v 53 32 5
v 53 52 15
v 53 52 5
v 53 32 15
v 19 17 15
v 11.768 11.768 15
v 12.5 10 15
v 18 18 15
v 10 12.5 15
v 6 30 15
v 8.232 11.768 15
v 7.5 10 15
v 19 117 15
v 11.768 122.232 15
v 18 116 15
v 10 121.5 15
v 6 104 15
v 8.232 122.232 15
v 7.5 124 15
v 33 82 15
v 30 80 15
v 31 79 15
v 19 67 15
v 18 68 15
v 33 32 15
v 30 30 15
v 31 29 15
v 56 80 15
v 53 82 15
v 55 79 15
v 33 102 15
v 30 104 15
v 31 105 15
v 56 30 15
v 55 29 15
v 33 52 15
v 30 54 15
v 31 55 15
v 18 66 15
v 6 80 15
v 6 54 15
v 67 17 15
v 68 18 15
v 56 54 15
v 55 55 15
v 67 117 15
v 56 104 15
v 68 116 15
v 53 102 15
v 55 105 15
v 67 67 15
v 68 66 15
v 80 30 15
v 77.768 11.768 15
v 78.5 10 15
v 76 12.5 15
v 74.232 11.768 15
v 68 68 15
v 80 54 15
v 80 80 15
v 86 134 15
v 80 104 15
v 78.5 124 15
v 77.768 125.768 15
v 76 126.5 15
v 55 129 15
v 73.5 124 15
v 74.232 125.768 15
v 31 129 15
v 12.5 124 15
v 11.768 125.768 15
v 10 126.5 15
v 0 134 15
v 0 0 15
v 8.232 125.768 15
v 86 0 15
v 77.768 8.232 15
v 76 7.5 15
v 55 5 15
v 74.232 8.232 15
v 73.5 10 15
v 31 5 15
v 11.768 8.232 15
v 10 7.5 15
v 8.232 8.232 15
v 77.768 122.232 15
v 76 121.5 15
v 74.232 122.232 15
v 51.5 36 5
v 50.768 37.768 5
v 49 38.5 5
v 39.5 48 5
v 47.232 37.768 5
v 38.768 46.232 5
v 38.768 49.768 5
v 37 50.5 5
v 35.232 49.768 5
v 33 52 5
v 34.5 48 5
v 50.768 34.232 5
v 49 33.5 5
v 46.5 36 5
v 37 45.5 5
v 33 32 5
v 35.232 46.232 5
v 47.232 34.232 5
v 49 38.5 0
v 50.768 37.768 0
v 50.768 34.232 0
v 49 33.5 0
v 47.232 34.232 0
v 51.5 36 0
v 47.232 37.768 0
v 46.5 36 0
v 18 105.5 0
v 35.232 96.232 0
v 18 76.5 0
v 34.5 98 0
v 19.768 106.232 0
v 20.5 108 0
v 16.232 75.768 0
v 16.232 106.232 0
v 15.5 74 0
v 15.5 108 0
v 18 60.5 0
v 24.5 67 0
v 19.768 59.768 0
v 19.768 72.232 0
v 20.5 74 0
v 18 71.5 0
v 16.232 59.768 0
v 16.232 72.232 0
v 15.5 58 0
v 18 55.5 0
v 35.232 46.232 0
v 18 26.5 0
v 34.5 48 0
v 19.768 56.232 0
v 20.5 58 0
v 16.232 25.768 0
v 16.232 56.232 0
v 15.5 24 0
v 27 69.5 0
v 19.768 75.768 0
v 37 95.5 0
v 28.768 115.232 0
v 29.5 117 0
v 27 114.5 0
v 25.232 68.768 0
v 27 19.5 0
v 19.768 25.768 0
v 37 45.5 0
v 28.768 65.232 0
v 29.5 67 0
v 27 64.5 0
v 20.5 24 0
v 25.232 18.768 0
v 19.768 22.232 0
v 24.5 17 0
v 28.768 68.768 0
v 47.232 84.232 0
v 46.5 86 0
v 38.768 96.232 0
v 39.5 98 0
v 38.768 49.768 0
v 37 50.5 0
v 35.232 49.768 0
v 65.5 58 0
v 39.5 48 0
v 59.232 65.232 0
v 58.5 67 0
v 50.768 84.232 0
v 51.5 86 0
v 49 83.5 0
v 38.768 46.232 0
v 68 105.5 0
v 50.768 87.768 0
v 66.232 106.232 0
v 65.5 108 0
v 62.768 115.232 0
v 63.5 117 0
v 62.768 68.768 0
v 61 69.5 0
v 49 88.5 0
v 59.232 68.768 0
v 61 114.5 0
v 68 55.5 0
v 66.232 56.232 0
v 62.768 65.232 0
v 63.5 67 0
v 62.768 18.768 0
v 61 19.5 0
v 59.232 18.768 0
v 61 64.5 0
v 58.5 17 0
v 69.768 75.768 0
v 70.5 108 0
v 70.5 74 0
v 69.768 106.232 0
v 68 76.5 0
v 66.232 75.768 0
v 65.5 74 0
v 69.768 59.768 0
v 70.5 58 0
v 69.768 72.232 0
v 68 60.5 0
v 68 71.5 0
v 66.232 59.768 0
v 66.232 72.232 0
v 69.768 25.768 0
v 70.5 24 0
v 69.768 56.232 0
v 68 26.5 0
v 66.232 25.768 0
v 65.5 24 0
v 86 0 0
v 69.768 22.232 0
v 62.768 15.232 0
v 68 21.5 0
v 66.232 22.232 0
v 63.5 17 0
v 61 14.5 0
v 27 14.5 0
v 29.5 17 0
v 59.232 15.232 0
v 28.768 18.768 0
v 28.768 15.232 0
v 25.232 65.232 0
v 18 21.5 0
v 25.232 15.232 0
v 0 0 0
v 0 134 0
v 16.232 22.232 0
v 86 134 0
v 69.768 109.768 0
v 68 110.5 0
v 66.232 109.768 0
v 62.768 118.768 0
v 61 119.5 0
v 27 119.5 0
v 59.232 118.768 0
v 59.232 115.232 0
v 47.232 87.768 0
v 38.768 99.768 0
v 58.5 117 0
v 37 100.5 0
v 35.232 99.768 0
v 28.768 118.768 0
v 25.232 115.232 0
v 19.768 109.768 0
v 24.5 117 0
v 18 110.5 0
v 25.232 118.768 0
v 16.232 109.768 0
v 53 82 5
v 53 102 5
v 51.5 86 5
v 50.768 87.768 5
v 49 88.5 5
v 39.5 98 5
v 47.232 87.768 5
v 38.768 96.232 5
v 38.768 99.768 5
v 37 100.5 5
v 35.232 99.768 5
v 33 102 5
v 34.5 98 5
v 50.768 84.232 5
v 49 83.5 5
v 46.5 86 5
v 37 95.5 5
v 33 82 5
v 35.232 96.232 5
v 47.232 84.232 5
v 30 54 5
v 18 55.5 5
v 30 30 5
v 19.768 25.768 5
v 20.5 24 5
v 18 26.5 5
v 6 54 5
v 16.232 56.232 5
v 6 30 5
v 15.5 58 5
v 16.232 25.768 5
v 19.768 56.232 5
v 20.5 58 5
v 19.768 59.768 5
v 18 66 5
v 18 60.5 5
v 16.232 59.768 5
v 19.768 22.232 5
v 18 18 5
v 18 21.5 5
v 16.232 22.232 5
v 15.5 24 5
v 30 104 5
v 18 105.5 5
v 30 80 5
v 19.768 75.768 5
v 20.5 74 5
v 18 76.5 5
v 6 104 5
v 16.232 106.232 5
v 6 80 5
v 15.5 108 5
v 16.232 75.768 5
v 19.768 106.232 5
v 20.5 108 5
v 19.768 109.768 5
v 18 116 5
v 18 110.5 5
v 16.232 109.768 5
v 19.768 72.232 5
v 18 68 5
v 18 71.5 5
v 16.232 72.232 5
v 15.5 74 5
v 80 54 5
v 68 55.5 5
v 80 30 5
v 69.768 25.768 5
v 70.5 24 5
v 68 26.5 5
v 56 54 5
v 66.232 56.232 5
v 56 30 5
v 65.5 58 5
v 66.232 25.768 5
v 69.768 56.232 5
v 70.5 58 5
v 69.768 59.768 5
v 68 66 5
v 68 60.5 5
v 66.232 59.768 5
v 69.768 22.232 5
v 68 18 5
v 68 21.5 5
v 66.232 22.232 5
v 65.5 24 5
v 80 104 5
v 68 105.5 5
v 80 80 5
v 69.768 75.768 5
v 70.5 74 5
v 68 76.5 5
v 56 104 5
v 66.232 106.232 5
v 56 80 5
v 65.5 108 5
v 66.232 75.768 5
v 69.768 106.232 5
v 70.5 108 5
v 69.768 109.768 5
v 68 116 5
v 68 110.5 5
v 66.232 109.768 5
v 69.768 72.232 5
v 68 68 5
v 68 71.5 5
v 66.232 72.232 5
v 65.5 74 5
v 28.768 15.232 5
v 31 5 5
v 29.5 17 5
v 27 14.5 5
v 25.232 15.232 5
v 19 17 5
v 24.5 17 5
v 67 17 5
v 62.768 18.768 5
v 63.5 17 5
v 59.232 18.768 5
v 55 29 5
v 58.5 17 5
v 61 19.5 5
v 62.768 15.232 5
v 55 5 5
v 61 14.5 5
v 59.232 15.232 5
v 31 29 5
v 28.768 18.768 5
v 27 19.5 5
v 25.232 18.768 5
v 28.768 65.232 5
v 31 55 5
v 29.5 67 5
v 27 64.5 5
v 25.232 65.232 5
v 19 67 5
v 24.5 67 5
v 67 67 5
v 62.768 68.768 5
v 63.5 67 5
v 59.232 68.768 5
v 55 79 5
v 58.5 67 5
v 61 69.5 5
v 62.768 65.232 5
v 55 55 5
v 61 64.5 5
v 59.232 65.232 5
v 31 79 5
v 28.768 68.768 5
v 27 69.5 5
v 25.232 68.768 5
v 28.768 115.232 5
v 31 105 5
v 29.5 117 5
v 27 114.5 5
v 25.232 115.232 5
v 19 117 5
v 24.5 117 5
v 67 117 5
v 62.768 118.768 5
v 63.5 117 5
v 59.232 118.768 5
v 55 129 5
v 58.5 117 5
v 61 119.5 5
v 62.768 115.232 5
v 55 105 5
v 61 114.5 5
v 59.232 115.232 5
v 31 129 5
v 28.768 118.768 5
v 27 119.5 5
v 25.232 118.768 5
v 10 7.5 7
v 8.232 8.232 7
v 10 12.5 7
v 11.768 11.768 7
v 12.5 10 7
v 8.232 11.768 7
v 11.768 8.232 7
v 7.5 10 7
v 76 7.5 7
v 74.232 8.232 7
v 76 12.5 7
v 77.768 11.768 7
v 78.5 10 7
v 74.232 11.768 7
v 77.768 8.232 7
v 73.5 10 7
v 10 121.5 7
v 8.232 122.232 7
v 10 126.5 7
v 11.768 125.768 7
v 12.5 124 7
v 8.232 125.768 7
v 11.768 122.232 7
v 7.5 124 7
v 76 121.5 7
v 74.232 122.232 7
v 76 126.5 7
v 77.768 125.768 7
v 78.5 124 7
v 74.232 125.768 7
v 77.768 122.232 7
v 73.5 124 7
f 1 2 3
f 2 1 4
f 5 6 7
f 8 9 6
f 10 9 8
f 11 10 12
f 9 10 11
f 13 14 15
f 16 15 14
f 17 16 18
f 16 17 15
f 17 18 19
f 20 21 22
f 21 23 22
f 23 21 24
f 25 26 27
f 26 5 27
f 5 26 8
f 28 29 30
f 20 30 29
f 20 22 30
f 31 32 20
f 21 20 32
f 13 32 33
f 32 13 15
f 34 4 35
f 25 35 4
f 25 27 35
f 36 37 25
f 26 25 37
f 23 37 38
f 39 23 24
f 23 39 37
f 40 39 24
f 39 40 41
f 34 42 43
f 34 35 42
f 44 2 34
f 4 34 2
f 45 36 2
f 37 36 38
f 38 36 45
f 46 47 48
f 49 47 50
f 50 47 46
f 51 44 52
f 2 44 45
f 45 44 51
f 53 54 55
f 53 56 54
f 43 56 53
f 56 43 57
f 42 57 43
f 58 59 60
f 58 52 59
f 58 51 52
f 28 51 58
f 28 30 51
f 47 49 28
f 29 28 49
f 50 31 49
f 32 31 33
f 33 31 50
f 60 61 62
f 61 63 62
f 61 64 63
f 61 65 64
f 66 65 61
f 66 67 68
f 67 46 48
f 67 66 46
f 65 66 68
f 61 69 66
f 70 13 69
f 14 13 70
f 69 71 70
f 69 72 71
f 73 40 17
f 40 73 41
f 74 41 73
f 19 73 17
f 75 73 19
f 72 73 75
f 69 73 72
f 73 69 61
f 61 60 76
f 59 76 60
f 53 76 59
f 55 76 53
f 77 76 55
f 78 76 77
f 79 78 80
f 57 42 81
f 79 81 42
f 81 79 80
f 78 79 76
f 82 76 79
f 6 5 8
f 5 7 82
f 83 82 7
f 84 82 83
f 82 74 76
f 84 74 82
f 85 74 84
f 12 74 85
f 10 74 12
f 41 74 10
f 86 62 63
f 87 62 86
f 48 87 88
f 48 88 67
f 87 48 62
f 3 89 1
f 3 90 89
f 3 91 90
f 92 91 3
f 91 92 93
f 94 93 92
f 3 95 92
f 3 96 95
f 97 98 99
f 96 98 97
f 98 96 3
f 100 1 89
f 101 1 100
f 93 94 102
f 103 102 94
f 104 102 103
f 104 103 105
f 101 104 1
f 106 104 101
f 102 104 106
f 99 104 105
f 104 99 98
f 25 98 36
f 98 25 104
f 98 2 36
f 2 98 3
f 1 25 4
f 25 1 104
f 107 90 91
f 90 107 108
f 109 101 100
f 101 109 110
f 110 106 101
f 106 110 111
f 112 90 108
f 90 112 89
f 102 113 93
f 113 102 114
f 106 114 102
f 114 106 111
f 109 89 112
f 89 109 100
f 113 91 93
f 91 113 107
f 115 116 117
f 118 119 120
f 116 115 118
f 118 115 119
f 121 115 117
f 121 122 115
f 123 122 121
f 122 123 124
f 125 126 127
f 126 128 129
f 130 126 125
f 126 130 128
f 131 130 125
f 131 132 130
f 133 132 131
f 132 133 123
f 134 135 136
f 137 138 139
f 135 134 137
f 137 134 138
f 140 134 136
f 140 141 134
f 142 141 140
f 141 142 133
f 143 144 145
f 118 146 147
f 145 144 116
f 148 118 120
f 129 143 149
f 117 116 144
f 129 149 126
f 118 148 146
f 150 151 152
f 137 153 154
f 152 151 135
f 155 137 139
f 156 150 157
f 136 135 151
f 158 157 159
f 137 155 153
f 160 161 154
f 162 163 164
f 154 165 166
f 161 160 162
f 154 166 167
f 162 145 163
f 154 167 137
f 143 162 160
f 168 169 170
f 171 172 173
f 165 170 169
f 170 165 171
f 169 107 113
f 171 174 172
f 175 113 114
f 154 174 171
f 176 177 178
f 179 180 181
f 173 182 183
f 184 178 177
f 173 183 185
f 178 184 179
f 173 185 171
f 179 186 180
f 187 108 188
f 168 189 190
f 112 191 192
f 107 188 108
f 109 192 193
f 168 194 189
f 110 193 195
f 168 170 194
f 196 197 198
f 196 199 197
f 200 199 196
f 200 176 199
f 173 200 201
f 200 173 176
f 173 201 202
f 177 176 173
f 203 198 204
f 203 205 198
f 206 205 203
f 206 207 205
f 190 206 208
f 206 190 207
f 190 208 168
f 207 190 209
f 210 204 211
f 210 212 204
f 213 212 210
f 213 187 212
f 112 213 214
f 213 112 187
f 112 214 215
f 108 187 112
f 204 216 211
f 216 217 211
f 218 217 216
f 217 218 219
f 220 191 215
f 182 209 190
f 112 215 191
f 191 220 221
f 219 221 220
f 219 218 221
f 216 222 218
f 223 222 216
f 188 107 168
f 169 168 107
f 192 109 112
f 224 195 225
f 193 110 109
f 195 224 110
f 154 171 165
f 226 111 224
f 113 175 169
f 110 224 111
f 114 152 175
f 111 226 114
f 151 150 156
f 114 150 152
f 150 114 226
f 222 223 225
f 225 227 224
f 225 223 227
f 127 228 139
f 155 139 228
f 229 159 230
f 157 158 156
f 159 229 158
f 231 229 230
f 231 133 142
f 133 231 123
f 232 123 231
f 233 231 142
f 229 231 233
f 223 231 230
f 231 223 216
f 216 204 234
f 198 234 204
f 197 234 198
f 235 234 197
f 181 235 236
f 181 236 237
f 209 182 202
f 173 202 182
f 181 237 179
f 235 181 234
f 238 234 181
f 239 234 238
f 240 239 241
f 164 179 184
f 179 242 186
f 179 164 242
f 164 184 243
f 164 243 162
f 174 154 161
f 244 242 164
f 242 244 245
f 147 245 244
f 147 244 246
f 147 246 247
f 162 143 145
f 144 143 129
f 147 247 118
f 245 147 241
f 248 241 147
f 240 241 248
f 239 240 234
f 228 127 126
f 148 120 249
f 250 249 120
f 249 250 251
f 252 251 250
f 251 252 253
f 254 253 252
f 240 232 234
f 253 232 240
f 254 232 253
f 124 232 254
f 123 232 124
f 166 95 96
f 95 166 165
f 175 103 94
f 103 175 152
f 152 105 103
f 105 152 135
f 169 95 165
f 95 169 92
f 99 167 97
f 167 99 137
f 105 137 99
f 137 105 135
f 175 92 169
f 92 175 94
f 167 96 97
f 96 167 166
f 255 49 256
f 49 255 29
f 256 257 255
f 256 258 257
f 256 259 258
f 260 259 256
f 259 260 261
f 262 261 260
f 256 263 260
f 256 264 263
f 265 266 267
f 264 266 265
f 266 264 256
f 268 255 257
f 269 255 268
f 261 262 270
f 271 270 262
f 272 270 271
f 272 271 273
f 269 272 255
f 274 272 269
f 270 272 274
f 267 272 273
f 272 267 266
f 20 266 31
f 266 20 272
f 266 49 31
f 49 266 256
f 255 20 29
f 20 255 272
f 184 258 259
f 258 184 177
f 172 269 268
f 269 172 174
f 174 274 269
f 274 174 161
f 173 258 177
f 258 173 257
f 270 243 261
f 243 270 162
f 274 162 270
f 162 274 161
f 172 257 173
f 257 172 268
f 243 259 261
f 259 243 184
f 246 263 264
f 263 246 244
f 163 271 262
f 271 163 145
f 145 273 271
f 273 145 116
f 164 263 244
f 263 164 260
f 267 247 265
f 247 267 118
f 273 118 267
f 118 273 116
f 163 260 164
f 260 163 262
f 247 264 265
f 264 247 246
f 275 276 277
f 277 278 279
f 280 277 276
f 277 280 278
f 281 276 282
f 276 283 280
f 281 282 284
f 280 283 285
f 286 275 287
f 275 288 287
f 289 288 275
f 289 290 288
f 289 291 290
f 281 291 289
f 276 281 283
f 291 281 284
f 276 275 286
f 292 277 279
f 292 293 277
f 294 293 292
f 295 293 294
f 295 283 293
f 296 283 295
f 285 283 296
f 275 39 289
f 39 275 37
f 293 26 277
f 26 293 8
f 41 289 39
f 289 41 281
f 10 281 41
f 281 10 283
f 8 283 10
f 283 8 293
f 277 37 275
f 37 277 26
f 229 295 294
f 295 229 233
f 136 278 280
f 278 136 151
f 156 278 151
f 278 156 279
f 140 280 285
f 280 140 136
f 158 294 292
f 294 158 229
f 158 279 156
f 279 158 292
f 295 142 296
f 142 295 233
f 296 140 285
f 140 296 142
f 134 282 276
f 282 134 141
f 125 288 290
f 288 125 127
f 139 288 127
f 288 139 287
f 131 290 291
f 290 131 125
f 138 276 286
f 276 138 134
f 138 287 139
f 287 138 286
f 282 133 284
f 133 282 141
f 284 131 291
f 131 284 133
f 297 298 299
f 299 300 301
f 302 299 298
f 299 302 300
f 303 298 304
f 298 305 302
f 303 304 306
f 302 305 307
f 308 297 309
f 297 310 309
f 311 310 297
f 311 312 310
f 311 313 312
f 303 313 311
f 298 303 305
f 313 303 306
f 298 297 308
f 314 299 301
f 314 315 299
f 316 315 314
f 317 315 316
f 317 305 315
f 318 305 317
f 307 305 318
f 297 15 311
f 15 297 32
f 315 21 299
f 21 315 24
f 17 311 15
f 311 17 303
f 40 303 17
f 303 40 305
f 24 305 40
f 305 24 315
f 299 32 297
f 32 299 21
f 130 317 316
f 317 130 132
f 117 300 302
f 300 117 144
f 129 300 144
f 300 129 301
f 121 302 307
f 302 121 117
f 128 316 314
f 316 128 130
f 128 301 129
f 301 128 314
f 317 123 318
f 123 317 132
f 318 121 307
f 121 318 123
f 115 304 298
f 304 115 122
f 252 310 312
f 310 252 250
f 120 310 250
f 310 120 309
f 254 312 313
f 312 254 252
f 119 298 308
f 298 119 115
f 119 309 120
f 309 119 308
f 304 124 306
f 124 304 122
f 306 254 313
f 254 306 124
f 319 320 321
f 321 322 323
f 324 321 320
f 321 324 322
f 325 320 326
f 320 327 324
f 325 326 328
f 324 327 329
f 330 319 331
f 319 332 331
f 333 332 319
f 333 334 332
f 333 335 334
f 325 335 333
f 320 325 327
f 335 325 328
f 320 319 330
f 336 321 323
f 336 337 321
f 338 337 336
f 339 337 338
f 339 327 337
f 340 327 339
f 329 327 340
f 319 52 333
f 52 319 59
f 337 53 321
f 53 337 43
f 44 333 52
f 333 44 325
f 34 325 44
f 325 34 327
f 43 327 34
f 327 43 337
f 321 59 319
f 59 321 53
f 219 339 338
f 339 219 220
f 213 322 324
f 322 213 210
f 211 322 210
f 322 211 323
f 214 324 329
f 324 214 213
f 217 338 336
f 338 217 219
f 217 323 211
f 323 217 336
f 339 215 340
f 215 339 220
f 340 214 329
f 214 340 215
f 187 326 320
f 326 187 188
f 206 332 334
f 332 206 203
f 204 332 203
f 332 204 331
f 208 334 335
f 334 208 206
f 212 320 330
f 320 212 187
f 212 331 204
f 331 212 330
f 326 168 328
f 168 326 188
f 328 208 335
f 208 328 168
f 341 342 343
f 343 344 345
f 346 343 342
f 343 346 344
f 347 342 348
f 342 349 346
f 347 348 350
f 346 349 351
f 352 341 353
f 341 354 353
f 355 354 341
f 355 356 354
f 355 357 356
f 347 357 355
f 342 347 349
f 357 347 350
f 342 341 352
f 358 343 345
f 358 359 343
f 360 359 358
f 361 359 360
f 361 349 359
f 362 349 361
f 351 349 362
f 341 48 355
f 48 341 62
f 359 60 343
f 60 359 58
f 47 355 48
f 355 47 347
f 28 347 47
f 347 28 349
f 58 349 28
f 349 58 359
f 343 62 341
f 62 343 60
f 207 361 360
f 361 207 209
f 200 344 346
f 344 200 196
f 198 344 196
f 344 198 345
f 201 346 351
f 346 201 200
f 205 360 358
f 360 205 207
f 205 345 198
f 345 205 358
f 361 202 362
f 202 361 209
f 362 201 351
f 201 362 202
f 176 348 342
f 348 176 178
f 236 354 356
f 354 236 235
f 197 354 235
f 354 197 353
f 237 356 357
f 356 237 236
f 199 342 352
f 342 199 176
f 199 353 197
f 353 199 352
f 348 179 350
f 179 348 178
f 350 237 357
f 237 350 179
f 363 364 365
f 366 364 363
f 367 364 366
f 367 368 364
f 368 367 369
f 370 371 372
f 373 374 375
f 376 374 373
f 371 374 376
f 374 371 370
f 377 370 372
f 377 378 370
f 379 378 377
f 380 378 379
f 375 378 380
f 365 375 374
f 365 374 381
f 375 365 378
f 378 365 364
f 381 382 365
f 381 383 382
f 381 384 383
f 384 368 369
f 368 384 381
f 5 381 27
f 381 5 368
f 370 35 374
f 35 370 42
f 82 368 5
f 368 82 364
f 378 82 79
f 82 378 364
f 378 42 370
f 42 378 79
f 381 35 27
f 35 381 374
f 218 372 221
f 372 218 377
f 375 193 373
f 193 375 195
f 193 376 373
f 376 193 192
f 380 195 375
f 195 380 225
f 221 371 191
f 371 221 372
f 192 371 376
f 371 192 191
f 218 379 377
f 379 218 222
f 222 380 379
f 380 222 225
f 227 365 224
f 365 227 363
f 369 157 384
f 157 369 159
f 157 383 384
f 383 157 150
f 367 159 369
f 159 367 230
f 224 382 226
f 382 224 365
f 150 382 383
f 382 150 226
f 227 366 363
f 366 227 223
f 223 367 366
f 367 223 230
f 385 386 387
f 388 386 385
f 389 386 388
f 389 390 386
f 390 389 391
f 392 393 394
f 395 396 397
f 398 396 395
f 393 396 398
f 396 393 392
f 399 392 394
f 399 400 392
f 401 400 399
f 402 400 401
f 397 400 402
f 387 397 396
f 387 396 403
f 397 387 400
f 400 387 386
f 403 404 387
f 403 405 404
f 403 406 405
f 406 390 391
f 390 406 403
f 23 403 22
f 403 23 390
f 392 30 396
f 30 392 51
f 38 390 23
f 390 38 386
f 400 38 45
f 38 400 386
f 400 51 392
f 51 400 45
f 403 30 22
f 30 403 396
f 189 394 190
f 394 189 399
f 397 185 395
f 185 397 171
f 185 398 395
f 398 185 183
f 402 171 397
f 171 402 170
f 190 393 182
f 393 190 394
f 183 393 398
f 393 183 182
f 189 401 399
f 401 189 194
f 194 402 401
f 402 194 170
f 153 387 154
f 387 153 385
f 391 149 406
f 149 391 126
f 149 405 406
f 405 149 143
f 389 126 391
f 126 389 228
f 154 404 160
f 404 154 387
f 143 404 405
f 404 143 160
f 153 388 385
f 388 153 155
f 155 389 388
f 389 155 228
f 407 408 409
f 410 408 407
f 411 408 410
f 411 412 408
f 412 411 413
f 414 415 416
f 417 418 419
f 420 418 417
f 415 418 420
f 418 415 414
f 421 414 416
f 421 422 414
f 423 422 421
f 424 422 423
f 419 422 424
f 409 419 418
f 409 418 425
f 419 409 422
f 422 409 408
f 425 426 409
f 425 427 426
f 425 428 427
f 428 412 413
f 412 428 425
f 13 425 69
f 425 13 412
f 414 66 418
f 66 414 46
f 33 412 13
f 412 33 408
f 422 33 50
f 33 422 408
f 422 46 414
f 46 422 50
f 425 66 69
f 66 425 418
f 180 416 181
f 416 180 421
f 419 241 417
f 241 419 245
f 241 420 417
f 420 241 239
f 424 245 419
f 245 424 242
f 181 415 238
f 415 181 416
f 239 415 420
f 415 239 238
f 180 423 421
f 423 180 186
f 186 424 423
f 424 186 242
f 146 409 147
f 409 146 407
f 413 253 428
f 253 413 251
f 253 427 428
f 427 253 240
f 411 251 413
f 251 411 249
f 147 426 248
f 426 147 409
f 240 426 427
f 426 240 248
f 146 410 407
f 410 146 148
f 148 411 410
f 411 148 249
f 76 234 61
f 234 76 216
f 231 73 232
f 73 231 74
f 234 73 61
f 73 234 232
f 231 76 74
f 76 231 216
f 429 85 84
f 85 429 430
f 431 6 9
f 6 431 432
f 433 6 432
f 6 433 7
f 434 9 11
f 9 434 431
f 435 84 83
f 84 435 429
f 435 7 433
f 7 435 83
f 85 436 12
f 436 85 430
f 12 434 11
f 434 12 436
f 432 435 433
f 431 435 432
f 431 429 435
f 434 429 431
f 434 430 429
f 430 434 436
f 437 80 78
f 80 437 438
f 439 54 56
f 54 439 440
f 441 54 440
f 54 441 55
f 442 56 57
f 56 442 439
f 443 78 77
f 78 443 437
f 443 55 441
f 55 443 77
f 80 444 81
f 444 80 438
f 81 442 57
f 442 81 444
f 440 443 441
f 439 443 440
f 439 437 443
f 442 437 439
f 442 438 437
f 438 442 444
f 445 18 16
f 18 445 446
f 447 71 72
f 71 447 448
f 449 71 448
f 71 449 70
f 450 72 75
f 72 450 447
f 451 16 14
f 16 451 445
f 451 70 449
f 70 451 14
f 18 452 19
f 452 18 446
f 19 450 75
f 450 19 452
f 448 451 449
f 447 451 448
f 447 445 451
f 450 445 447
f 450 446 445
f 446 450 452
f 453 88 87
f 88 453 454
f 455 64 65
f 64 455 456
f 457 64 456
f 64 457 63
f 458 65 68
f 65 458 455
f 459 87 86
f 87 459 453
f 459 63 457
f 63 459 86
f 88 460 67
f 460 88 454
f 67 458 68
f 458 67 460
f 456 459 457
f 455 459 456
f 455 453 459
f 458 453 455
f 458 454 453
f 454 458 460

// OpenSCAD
module hex (unit=20,height=10) {
    translate([unit,3*unit,0]) {
        linear_extrude(height) {        
            polygon(points=[
                [0,unit],//0
                [unit,0],
                [unit,-2*unit],
                [0,-3*unit],
                [-unit,-2*unit],
                [-unit,0]]);
        }
    }
}

module hex_with_holes(unit, height) {
    translate([2,2,0]) {
        hex(unit,10);    
        translate([unit,unit/2,-5]) {
            cylinder(d=5, h=5);
        }
        translate([unit,3*unit+4,-5]) {
            cylinder(d=5, h=5);
        }
    };
}

//hex(25,10);
//16mm on center
//250mm/digit inner
//140 max/digit. ~120mm /
u=12;
margin=5;
border=2;

difference() {
    cube([u*6+margin*2+border*2,u*10+margin*2+border*2,15]);
    translate([0,-1,0]) {
        translate([margin-1,margin+u,5]) { 
            hex_with_holes(u);
        }
        
        translate([margin-1,margin+5*u+border,5]) { 
            hex_with_holes(u);
        }
        
        translate([margin+4*u+1,margin+u,5]) { 
            hex_with_holes(u);
        }
        
        translate([margin+4*u+1,margin+5*u+border,5]) { 
            hex_with_holes(u);
        }
        
        translate([50+margin+border+u,margin-1,5]) { 
            rotate([0,0,90]) {
                hex_with_holes(u);
            }
        }
        
        translate([50+margin+border+u,margin-1+4*u+border,5]) { 
            rotate([0,0,90]) {
                hex_with_holes(u);
            }
        }
        
        translate([50+margin+border+u,margin-1+4*u+border+4*u+border,5]) { 
            rotate([0,0,90]) {
                hex_with_holes(u);
            }
        }
    }
    
    // square cutouts
    translate([2*u+border*2+margin,2*u+border*2+margin-1,5]) {
        cube([u*2-4,u*2-4,10]);        
        translate([u*2-8,4,-5]) {
            linear_extrude(5) {
                circle(d=5);
            }
        }   
        translate([4,u*2-8,-5]) {
            linear_extrude(5) {
                circle(d=5);
            }
        }   
    }
    translate([2*u+border*2+margin,2*u+border*2+margin+4*u+1,5]) {
        cube([u*2-4,u*2-4,10]);        
        translate([u*2-8,4,-5]) {
            linear_extrude(5) {
                circle(d=5);
            }
        }   
        translate([4,u*2-8,-5]) {
            linear_extrude(5) {
                circle(d=5);
            }
        }   
    }
    
    // mounting holes
    translate([10,10,7]) {
        cylinder(h=8, d=5);
    }
    translate([u*6+margin*2+border*2-10,10,7]) {
        cylinder(h=8, d=5);
    }
    translate([10,u*10+margin*2+border*2-10,7]) {
        cylinder(h=8, d=5);
    }
    translate([u*6+margin*2+border*2-10,u*10+margin*2+border*2-10,7]) {
        cylinder(h=8, d=5);
    }
}

    
